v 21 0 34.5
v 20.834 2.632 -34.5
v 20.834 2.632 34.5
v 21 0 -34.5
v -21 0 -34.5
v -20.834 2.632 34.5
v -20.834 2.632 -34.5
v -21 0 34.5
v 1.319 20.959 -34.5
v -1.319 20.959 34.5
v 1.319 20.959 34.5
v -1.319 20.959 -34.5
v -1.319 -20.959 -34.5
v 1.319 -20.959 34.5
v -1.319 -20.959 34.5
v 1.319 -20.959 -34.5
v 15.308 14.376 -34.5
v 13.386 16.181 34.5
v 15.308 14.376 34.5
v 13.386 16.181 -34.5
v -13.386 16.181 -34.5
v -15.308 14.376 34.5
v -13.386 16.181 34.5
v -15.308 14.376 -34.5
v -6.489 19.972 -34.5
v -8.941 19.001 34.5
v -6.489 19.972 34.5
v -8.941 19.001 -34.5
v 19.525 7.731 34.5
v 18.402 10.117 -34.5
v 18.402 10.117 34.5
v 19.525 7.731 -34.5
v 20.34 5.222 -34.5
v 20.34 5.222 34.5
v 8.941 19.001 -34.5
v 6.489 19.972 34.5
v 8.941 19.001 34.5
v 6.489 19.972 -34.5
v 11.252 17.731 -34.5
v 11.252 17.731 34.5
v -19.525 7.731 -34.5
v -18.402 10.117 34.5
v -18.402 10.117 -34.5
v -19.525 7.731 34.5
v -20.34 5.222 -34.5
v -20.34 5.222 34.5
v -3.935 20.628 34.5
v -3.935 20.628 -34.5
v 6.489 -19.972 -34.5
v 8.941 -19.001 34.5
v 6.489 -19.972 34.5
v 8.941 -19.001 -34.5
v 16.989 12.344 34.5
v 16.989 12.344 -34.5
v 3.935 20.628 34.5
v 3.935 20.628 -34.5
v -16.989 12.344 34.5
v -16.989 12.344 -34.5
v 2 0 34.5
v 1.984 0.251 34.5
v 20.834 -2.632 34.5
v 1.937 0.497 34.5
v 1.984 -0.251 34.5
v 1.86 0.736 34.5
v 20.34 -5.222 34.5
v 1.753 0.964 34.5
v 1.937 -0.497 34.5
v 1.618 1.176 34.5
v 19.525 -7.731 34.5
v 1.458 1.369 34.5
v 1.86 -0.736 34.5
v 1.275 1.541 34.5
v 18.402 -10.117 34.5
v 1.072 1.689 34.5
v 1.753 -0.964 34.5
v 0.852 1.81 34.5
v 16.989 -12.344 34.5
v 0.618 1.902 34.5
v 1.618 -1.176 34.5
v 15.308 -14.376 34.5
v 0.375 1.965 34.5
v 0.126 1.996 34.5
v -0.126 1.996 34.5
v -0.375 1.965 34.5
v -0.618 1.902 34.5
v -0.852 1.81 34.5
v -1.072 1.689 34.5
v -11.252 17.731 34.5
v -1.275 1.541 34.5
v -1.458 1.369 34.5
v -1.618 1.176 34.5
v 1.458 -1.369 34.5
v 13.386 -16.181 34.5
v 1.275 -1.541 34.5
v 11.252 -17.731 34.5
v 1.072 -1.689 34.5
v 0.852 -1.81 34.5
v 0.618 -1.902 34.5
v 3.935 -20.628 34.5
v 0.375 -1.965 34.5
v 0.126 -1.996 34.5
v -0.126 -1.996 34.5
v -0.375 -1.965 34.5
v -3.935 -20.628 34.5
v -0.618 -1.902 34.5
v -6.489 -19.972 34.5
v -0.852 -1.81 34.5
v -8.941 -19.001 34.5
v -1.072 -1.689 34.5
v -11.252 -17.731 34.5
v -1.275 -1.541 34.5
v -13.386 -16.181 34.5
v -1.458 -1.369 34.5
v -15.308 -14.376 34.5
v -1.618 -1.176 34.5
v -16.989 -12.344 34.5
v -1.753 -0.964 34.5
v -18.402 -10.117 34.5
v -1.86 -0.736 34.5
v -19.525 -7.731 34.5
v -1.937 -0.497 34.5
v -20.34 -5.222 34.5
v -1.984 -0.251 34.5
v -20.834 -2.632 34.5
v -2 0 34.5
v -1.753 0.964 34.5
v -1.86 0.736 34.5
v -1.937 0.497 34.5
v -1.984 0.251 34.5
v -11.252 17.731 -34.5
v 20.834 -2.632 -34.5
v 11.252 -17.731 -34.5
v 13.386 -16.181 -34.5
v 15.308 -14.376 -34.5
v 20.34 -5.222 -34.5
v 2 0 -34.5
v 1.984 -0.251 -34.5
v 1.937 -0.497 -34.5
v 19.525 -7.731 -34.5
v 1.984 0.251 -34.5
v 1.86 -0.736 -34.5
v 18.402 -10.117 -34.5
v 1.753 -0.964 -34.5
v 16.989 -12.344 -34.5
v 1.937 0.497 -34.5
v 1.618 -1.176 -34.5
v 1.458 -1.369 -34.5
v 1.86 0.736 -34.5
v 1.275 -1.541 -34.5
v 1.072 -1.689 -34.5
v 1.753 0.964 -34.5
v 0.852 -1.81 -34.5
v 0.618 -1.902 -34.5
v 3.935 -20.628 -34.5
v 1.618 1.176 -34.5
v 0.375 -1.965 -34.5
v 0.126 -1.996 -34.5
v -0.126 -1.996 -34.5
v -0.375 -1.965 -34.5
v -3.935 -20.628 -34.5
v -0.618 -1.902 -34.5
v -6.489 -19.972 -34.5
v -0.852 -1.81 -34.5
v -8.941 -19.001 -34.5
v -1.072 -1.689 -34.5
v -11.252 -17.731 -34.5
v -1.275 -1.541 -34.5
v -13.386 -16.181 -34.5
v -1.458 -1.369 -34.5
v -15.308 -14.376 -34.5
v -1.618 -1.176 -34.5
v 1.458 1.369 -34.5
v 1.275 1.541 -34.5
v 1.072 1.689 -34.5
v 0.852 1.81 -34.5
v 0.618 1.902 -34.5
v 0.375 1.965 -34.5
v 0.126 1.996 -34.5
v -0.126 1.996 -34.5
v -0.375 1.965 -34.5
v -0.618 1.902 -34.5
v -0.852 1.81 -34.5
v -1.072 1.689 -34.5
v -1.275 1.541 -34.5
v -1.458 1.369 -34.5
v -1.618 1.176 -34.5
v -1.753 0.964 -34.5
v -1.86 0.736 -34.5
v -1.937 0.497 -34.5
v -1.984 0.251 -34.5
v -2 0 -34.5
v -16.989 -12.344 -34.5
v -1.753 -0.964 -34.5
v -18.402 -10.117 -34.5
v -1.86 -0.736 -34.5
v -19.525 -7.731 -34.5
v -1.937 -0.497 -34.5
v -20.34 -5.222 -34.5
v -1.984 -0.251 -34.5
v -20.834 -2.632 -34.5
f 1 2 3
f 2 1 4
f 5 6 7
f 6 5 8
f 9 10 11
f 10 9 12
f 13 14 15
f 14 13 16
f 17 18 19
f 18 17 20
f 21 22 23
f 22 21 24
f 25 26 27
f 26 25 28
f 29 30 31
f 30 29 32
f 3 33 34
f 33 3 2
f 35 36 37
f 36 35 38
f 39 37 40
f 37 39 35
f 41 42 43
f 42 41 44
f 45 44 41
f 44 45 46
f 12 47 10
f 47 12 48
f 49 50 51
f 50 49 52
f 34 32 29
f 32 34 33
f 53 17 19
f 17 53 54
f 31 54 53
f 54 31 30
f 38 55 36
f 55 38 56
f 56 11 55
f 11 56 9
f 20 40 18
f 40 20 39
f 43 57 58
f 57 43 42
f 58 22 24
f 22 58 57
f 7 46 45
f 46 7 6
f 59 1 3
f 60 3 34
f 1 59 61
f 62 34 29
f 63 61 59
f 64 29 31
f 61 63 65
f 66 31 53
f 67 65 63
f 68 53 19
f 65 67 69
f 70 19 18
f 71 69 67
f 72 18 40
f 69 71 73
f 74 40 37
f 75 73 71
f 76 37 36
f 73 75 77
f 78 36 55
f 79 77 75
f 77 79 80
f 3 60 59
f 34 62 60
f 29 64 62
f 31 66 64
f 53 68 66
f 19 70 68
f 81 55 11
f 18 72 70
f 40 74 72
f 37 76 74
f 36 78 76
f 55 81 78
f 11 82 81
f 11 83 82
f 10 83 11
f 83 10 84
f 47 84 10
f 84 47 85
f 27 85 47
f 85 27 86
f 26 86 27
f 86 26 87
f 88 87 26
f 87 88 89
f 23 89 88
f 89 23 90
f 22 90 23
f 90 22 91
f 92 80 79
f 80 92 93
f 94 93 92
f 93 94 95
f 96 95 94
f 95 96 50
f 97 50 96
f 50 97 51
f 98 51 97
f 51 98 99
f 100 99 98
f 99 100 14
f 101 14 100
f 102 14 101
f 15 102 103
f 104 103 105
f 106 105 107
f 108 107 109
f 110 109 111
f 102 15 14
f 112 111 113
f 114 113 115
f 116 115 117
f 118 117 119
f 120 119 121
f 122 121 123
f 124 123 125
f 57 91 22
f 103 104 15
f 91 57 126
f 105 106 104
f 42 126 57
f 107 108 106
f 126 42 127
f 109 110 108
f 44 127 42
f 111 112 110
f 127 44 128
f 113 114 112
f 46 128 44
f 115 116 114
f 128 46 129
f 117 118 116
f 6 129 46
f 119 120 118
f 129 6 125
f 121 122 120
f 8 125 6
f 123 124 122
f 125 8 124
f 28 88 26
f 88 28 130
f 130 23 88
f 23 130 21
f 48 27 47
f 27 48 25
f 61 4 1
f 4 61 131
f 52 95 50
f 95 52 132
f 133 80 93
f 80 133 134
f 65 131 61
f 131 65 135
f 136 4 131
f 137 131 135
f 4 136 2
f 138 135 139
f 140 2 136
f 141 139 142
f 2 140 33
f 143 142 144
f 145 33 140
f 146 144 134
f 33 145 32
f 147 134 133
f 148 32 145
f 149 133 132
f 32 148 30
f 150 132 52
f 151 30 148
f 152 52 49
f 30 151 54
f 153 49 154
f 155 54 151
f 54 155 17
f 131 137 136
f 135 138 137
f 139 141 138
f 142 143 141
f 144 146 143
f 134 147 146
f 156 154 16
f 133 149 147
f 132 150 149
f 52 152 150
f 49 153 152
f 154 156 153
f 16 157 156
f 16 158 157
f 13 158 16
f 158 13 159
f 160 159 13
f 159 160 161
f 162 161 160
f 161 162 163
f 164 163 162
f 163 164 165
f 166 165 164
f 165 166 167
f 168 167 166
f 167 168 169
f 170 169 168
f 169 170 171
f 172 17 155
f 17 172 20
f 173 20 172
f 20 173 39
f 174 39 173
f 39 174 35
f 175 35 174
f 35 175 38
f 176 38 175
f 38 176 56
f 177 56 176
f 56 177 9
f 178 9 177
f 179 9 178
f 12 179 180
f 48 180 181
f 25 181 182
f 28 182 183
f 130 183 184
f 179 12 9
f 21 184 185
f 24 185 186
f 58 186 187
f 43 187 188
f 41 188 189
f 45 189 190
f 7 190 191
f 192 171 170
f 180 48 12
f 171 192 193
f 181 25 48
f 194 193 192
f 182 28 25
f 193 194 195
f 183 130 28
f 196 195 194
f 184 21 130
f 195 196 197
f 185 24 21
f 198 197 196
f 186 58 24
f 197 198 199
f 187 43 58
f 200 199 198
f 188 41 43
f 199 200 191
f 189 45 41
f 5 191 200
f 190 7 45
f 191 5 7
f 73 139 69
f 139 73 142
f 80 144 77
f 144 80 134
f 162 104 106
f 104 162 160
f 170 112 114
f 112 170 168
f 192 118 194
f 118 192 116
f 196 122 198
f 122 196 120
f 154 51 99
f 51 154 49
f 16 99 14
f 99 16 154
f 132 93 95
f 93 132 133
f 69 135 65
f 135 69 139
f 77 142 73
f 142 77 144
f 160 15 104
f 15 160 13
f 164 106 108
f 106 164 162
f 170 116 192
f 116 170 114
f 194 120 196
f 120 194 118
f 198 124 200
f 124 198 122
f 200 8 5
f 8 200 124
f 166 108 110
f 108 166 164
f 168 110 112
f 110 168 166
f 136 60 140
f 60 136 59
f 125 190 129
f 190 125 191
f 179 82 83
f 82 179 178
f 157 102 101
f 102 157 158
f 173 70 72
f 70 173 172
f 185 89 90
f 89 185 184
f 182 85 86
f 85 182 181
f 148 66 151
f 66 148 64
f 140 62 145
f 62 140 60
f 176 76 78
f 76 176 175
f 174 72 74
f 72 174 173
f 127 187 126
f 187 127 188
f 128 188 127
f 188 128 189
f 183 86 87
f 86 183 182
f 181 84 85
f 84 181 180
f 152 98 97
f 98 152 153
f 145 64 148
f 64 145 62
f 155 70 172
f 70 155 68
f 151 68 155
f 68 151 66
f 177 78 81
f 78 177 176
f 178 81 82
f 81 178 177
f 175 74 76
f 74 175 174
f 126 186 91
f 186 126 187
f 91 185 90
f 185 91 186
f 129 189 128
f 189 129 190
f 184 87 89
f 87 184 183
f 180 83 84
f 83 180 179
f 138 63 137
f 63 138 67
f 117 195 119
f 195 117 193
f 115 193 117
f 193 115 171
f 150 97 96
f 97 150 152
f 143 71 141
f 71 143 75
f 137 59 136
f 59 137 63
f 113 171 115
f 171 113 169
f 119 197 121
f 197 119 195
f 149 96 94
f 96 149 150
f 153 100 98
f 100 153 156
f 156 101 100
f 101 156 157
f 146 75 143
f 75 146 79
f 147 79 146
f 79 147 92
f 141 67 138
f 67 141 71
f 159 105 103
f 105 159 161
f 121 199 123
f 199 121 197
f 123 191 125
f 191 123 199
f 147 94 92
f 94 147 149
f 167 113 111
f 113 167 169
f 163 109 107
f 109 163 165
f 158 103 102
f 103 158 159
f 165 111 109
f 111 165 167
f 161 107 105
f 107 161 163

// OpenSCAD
$fn = 50;


difference() {
	union() {
		translate(v = [0, 0, -34.5000000000]) {
			cylinder(h = 69, r = 21.0000000000);
		}
	}
	union() {
		translate(v = [0, 0, -100.0000000000]) {
			cylinder(h = 200, r = 2);
		}
	}
}
